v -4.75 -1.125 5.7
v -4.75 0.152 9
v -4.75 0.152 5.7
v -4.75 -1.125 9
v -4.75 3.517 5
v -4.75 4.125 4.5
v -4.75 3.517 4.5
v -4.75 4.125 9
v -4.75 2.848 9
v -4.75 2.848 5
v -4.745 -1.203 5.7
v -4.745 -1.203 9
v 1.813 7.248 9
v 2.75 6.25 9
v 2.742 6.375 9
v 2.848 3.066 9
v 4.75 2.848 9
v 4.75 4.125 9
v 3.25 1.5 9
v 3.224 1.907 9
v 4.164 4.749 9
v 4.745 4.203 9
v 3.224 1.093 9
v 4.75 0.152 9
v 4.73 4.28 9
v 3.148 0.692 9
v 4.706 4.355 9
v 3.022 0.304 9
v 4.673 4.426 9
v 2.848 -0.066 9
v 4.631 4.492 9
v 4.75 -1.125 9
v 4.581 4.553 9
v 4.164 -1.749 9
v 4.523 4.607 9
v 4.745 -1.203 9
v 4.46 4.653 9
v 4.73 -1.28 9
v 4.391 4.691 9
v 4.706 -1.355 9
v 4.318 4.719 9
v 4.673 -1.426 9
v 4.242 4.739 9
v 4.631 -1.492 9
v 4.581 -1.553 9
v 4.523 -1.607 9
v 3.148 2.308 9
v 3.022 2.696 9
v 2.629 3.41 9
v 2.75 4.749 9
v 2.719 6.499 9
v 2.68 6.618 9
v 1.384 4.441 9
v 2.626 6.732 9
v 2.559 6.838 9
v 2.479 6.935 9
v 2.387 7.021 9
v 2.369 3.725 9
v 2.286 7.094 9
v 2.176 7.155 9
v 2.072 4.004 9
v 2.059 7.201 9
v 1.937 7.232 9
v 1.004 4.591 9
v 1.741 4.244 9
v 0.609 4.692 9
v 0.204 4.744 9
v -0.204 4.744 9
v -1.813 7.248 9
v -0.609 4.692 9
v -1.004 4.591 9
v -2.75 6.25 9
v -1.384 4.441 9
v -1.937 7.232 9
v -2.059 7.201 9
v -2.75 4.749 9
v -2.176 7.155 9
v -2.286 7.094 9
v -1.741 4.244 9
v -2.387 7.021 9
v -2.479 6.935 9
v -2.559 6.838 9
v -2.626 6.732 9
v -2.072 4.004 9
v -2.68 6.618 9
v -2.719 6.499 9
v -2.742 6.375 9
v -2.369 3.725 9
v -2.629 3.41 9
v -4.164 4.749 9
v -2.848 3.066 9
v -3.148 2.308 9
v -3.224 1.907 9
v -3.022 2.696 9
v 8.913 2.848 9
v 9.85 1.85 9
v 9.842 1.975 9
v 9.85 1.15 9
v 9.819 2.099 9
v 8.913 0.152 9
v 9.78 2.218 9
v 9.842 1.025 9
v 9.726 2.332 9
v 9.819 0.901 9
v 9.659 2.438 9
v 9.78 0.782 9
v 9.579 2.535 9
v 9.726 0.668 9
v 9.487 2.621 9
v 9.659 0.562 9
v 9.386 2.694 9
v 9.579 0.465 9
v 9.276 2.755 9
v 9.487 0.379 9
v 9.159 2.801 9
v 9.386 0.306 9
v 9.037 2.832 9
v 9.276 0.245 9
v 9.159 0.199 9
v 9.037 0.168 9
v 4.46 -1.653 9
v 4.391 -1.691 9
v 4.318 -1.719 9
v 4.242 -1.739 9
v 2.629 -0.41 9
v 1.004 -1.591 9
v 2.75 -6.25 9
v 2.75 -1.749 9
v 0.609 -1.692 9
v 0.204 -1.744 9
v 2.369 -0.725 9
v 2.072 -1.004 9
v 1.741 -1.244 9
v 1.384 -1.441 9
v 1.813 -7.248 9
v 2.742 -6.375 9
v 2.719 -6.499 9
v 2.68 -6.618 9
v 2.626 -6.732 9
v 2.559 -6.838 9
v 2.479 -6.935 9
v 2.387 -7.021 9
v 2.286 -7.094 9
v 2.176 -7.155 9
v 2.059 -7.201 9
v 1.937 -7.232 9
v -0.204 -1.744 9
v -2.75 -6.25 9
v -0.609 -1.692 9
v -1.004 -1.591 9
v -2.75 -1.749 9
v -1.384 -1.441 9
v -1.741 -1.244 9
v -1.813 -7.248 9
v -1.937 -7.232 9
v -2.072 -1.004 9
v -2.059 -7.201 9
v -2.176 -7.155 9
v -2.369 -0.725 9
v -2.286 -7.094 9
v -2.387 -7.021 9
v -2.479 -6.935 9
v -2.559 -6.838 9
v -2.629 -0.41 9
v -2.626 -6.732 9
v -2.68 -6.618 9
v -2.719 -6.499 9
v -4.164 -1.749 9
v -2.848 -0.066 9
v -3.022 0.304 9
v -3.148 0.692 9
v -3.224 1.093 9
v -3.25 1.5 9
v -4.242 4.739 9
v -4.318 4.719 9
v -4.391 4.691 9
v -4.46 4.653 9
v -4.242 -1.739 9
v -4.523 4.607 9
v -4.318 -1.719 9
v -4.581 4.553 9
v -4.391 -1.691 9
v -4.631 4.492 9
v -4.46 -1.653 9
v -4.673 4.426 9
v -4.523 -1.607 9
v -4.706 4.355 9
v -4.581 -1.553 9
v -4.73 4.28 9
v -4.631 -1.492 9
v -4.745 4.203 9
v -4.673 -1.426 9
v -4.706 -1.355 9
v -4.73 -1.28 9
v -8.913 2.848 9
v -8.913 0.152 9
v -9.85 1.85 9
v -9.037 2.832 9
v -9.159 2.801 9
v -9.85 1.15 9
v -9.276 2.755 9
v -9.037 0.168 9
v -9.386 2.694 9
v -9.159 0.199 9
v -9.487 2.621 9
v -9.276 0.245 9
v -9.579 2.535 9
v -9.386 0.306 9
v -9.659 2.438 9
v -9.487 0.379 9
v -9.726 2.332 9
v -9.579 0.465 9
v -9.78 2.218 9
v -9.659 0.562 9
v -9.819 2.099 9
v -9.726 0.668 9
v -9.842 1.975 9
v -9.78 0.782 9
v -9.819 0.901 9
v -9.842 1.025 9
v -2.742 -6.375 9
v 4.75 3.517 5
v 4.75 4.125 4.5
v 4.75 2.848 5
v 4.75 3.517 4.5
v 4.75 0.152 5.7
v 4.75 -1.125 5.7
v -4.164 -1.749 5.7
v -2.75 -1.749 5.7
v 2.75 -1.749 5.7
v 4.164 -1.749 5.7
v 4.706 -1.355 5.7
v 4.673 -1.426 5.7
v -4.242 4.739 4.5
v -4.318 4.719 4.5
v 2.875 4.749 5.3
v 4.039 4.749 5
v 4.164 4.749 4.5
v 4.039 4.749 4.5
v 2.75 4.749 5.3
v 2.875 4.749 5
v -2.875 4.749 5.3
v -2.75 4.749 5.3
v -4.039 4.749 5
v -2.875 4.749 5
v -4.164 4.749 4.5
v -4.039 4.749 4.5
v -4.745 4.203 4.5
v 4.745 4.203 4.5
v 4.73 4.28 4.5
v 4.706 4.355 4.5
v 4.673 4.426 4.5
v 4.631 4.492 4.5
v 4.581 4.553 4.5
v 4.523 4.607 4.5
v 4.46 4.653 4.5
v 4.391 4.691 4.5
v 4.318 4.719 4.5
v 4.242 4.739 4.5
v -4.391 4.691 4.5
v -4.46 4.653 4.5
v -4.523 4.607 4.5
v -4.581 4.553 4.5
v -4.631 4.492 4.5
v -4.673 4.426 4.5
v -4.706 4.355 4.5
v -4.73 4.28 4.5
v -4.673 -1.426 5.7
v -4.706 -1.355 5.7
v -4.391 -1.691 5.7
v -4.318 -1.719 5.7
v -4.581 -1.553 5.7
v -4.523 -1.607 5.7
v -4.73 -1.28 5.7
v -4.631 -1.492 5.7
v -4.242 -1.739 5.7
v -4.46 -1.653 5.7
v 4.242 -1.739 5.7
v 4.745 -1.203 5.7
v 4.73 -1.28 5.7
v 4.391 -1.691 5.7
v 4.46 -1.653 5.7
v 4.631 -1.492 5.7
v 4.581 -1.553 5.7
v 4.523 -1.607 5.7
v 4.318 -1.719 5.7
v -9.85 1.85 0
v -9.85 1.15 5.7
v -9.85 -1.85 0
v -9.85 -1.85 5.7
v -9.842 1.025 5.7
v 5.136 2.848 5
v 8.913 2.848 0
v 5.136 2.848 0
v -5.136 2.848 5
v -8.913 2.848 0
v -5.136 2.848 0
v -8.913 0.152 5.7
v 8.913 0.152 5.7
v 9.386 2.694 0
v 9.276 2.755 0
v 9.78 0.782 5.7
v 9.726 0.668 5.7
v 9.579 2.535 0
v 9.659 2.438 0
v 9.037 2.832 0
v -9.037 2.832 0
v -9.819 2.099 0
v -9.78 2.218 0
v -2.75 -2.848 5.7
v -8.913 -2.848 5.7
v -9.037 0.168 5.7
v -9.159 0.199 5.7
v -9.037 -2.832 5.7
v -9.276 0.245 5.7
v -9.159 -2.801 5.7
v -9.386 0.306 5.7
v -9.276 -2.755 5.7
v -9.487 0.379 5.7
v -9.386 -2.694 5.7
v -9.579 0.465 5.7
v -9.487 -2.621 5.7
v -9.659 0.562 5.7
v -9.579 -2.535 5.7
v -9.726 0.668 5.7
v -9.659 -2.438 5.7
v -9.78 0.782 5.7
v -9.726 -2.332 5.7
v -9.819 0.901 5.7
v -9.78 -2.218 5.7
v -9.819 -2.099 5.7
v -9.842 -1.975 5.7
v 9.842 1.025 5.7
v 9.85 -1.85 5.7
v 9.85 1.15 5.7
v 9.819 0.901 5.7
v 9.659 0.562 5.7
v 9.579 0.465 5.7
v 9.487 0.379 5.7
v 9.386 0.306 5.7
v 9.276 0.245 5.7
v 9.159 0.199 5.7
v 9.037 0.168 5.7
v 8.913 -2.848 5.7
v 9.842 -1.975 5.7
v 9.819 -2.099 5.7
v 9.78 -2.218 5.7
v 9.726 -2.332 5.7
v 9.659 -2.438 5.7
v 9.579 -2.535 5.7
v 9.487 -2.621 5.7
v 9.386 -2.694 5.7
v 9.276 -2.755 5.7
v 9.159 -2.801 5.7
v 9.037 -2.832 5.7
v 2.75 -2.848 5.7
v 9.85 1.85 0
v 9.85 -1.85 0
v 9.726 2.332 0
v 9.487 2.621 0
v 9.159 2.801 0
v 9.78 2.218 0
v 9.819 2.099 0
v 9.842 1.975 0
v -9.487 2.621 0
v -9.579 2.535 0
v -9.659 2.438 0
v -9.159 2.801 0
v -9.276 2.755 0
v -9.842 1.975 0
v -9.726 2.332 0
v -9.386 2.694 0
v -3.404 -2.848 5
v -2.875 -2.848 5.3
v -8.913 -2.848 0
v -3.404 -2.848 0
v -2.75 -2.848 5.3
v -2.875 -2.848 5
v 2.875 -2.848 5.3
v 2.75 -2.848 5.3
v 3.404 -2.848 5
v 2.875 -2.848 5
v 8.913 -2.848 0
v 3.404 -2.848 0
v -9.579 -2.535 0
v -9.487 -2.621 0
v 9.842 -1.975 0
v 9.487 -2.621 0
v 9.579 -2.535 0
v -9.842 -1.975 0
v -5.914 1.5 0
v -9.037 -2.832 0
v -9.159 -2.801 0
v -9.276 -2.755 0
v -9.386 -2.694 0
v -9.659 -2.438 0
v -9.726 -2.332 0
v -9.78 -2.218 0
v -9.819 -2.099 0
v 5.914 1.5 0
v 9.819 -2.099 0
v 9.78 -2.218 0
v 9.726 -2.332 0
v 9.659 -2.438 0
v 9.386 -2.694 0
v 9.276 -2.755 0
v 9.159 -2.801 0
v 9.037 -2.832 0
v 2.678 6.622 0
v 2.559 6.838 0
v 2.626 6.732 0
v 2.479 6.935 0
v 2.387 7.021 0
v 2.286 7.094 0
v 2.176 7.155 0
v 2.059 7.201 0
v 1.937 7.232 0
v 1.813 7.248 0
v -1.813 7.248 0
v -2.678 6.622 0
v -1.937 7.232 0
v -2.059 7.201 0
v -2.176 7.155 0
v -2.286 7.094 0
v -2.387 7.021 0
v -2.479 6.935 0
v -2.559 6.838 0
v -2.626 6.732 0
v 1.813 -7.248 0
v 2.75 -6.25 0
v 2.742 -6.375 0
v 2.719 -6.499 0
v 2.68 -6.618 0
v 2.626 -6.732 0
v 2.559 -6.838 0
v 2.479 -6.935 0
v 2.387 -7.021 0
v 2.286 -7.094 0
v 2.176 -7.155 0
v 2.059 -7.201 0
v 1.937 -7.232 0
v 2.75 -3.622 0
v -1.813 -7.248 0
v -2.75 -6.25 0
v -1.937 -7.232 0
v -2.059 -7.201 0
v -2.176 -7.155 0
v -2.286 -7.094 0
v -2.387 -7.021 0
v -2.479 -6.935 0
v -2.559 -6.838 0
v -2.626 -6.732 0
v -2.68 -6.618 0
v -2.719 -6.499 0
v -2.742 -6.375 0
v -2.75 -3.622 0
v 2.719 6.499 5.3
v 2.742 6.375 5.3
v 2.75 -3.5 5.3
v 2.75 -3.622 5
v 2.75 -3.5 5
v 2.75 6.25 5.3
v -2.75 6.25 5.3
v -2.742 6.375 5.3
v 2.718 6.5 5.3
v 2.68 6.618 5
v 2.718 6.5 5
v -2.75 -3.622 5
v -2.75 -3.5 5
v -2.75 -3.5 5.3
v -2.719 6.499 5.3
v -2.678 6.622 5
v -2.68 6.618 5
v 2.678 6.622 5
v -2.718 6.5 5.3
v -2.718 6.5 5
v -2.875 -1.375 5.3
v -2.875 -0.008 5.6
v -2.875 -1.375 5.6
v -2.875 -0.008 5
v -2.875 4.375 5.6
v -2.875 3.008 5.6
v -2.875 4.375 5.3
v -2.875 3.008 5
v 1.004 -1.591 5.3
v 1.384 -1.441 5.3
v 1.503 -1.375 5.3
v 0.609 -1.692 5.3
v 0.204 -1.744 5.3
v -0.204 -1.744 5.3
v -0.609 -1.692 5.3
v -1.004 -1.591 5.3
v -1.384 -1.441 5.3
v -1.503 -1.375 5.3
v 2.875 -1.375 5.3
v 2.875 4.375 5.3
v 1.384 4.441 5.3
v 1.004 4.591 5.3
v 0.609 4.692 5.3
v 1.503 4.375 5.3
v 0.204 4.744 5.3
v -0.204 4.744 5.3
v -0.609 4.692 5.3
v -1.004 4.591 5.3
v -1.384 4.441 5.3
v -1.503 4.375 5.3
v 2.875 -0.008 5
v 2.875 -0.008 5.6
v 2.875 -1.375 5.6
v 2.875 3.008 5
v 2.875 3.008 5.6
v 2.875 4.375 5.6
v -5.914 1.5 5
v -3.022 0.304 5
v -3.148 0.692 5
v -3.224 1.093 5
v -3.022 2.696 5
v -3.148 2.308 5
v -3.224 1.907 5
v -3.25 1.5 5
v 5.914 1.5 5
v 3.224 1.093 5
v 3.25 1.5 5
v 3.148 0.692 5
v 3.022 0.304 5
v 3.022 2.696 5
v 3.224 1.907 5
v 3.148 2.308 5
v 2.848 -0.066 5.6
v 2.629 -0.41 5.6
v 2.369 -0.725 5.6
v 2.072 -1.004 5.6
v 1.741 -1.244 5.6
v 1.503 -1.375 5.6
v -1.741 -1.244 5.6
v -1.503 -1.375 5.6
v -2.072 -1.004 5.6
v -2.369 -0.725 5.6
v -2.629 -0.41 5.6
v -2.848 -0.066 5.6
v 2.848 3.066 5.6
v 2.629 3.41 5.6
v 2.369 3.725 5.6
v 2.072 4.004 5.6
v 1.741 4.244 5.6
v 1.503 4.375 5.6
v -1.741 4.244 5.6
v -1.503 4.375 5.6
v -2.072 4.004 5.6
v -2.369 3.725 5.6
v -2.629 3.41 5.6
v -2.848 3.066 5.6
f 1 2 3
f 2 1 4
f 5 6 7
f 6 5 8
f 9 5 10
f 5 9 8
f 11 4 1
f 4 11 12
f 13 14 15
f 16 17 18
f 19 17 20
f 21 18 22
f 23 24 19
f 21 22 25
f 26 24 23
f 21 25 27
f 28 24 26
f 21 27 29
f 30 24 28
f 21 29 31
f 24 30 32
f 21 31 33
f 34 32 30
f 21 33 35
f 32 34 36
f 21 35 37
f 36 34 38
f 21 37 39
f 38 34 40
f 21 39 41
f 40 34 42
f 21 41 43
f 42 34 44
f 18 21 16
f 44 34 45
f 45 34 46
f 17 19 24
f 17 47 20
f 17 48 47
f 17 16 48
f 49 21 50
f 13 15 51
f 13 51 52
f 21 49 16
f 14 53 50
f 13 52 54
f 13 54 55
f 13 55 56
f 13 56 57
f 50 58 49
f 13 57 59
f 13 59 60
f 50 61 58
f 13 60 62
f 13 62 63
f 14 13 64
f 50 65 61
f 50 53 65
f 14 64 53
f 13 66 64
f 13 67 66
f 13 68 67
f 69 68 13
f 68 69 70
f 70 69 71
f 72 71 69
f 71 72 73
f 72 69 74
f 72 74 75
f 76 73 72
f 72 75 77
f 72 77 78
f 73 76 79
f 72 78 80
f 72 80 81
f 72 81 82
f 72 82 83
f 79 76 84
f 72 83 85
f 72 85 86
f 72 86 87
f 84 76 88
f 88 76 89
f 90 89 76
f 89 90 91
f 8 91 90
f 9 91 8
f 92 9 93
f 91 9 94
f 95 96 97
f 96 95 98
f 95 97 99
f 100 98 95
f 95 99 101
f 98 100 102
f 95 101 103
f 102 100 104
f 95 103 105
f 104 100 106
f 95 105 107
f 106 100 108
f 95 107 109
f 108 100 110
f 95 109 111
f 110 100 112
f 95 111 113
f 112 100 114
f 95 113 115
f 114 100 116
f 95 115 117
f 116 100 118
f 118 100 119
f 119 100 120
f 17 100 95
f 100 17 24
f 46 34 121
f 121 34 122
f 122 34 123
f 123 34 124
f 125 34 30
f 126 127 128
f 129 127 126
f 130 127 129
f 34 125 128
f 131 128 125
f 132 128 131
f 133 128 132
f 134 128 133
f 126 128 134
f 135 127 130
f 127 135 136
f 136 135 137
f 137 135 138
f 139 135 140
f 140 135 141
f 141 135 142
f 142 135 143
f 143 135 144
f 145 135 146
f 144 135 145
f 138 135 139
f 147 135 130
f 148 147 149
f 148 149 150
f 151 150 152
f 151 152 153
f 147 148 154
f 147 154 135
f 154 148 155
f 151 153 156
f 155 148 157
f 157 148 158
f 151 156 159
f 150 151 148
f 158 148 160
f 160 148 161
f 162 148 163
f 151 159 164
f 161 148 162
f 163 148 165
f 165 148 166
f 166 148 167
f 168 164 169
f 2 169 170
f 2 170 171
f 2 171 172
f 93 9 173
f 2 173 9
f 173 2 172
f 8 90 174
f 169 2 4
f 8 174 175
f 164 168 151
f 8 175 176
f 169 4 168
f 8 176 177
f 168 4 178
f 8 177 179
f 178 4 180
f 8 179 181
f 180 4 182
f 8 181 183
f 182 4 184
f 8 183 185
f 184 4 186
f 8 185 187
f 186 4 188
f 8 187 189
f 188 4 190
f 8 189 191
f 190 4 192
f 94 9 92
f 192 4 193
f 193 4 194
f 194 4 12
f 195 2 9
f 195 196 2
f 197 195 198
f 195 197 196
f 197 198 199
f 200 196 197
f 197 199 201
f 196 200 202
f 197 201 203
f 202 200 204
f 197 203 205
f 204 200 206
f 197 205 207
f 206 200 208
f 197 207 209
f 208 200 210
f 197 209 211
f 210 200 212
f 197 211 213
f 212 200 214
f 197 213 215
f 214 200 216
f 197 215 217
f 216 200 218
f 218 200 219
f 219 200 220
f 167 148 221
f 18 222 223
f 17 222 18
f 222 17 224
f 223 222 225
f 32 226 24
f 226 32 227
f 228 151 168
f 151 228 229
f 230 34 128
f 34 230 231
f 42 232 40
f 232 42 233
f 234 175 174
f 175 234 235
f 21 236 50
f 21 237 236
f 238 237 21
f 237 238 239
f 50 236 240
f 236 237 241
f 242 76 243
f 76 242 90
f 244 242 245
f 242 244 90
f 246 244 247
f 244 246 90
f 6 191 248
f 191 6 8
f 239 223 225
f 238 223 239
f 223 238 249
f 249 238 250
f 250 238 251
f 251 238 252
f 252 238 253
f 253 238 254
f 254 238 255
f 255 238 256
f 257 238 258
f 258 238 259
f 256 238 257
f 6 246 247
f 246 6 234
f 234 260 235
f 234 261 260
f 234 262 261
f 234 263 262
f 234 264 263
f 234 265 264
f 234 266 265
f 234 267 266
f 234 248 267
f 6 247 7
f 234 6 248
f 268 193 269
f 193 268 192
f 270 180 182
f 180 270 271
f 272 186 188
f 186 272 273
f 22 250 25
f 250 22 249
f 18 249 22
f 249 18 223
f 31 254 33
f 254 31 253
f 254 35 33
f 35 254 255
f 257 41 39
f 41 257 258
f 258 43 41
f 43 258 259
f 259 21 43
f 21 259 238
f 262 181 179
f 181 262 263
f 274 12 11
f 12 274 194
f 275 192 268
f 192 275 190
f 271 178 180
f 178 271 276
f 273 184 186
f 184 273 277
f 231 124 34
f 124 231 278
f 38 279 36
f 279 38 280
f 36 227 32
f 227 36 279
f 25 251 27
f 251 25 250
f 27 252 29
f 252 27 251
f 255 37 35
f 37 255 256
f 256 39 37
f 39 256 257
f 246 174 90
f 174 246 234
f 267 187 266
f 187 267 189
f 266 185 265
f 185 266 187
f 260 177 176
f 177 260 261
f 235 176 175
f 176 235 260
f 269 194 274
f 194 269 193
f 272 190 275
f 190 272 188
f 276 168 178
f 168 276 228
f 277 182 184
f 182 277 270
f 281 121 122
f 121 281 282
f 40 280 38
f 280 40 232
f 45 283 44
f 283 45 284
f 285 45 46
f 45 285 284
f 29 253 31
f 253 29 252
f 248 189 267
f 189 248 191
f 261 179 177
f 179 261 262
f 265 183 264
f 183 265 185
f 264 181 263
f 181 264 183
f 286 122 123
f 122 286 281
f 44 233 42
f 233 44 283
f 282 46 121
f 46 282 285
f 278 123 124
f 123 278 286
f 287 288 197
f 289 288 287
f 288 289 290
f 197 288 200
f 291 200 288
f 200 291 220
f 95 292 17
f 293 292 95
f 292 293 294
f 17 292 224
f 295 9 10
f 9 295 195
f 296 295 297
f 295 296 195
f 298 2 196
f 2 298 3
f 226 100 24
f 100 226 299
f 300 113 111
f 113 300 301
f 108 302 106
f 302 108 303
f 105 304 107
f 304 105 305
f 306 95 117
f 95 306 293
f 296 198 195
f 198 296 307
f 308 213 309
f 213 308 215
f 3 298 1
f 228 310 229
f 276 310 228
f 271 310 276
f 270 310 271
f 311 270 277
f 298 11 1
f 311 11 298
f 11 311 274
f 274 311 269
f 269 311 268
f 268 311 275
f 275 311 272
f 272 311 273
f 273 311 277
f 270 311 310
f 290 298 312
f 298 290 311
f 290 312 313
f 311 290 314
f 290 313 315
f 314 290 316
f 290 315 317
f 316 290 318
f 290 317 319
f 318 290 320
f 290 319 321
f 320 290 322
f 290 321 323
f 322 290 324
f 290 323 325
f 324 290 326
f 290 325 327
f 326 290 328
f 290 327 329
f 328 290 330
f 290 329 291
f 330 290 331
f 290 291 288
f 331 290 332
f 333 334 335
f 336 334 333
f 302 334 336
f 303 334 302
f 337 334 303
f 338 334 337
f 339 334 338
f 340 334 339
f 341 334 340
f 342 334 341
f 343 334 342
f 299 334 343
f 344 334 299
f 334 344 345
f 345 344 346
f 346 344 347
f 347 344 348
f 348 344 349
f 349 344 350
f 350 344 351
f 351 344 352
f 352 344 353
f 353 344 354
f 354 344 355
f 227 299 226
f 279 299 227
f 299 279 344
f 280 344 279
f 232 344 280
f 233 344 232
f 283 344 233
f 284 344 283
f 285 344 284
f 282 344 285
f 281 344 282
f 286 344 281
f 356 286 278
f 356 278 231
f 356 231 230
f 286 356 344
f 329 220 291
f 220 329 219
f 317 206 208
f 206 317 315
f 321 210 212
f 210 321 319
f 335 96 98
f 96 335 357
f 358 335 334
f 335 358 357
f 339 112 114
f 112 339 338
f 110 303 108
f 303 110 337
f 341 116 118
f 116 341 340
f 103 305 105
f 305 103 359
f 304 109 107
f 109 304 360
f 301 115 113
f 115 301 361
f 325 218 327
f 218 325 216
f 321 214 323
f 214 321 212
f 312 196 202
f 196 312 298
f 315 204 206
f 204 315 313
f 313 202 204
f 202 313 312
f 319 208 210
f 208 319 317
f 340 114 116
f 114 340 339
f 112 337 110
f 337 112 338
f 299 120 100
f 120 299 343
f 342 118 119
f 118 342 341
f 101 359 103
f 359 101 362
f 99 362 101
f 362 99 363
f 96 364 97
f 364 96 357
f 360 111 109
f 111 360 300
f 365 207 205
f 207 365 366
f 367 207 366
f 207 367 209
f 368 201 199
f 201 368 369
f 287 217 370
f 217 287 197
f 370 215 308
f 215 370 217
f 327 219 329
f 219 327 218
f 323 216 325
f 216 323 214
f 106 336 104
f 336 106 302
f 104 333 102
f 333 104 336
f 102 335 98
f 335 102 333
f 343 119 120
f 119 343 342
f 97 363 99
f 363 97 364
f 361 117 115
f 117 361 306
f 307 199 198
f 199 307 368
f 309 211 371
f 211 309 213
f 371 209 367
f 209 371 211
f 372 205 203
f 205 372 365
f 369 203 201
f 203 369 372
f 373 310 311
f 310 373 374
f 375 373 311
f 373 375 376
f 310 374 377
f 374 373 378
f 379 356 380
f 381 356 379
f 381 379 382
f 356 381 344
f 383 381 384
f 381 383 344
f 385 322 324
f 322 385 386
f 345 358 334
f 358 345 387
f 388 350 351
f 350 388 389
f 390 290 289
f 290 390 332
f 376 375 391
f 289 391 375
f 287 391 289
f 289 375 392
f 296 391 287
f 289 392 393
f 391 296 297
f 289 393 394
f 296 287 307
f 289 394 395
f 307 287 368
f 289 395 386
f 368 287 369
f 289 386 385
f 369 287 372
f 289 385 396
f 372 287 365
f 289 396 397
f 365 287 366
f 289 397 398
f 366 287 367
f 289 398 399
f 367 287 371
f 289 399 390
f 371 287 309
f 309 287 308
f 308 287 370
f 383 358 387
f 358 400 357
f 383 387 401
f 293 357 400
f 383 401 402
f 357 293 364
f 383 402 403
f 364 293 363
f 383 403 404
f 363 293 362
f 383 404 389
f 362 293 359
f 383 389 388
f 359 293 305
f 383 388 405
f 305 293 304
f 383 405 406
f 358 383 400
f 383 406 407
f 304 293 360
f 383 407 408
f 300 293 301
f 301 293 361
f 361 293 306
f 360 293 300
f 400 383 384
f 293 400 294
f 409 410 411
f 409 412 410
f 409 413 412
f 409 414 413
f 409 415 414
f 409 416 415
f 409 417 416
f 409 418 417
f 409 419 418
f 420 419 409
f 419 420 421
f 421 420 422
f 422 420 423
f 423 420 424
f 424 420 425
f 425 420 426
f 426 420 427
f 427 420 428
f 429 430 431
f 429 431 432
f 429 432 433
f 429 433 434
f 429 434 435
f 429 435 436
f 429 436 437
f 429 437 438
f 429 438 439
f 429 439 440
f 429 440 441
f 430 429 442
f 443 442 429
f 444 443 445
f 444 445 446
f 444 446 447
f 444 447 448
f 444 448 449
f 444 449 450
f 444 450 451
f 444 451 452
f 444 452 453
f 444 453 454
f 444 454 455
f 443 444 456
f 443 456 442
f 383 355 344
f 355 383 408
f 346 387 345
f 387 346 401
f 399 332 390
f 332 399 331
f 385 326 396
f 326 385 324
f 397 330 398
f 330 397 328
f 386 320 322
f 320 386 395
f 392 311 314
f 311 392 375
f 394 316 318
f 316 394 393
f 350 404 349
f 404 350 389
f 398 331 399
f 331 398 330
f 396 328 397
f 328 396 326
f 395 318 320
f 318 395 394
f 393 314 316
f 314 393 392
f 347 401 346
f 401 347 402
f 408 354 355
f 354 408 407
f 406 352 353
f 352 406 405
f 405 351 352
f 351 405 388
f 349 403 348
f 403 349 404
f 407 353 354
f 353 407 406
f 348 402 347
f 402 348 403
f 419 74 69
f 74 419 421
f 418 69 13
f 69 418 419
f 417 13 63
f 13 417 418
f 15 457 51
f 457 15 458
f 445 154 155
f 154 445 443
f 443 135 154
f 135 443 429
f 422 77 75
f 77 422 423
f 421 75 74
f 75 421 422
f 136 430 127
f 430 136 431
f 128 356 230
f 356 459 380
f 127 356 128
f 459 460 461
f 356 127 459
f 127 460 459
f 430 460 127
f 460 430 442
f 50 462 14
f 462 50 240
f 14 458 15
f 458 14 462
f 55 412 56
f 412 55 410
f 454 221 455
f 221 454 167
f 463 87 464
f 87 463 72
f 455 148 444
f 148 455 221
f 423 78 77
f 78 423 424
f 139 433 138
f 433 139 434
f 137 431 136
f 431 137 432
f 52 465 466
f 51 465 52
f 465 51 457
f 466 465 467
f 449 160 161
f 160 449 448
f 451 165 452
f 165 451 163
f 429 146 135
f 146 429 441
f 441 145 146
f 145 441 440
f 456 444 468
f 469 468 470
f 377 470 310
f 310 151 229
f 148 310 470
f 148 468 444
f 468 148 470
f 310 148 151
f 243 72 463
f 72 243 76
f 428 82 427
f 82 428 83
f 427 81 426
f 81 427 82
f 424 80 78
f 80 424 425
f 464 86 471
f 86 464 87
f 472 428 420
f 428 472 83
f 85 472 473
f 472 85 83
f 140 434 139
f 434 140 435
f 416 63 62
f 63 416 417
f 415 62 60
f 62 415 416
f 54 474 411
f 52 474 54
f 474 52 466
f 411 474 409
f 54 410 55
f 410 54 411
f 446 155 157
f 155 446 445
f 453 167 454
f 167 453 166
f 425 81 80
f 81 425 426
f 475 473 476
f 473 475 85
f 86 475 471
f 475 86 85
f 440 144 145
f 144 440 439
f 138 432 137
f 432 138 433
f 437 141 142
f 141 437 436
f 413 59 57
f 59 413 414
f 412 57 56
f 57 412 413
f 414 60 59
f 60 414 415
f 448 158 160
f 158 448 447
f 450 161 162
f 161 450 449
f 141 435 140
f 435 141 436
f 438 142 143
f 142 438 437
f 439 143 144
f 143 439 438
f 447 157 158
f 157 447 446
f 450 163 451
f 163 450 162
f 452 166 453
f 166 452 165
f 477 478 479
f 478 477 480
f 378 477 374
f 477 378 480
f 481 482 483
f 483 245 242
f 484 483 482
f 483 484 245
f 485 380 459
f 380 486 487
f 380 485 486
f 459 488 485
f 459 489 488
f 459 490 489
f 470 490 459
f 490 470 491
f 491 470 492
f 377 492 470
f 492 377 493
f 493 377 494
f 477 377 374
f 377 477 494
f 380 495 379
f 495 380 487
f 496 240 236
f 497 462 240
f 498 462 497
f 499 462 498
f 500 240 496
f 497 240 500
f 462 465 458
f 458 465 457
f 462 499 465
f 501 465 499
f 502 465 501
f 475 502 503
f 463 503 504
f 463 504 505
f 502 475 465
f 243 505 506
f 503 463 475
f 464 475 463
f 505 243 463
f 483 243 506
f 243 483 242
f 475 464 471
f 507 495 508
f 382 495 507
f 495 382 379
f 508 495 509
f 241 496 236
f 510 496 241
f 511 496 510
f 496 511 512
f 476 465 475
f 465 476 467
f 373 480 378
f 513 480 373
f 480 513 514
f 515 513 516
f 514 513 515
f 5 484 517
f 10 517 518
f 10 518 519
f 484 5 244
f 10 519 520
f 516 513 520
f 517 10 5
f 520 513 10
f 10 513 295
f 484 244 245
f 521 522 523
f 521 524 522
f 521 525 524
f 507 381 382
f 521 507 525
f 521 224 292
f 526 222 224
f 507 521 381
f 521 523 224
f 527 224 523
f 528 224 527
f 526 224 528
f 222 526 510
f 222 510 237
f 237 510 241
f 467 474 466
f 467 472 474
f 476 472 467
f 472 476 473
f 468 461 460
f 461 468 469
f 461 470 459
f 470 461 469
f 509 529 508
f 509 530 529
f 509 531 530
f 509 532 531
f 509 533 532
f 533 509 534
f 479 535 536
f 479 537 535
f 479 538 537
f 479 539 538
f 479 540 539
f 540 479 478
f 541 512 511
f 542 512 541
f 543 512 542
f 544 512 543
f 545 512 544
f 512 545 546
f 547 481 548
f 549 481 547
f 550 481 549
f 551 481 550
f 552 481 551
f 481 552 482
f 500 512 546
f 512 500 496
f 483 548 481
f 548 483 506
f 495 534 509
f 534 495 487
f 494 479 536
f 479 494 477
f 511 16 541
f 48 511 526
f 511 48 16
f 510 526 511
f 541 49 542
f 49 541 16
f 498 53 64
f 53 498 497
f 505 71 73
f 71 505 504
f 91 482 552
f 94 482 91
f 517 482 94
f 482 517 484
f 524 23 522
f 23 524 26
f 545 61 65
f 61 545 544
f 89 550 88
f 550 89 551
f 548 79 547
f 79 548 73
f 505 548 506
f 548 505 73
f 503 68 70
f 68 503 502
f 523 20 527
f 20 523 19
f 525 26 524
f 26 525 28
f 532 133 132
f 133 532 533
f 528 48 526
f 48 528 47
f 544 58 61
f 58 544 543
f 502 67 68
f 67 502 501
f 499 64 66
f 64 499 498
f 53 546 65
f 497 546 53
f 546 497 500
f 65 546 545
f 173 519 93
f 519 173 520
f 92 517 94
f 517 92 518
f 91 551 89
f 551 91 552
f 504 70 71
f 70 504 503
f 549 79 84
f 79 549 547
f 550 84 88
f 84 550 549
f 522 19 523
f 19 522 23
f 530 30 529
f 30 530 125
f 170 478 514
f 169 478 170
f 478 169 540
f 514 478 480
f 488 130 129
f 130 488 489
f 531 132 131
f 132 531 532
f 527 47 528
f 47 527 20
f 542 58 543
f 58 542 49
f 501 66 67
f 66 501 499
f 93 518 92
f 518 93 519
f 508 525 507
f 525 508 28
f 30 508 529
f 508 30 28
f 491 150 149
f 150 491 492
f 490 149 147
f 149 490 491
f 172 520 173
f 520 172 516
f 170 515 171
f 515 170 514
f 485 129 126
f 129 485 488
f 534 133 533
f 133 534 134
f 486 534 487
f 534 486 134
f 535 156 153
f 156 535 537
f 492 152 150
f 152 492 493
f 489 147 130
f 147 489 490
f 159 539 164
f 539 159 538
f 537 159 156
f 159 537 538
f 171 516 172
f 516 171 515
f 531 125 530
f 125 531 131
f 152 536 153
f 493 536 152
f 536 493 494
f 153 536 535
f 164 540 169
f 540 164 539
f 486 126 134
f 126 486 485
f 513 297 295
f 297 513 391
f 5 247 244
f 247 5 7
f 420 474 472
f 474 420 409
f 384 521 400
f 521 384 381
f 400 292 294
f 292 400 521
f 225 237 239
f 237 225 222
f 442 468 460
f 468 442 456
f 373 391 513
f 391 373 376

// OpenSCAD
$fn = 50;


difference() {
	union() {
		translate(v = [0, 1.5000000000, 4.5000000000]) {
			hull() {
				translate(v = [-4.1250000000, 2.6250000000, 0]) {
					cylinder(h = 4.5000000000, r = 0.6250000000);
				}
				translate(v = [4.1250000000, 2.6250000000, 0]) {
					cylinder(h = 4.5000000000, r = 0.6250000000);
				}
				translate(v = [-4.1250000000, -2.6250000000, 0]) {
					cylinder(h = 4.5000000000, r = 0.6250000000);
				}
				translate(v = [4.1250000000, -2.6250000000, 0]) {
					cylinder(h = 4.5000000000, r = 0.6250000000);
				}
			}
		}
		translate(v = [0, 1.5000000000, 5.7000000000]) {
			hull() {
				translate(v = [-8.8500000000, 0.3500000000, 0]) {
					cylinder(h = 3.3000000000, r = 1);
				}
				translate(v = [8.8500000000, 0.3500000000, 0]) {
					cylinder(h = 3.3000000000, r = 1);
				}
				translate(v = [-8.8500000000, -0.3500000000, 0]) {
					cylinder(h = 3.3000000000, r = 1);
				}
				translate(v = [8.8500000000, -0.3500000000, 0]) {
					cylinder(h = 3.3000000000, r = 1);
				}
			}
		}
		hull() {
			translate(v = [-8.8500000000, 1.8500000000, 0]) {
				cylinder(h = 5.7000000000, r = 1);
			}
			translate(v = [8.8500000000, 1.8500000000, 0]) {
				cylinder(h = 5.7000000000, r = 1);
			}
			translate(v = [-8.8500000000, -1.8500000000, 0]) {
				cylinder(h = 5.7000000000, r = 1);
			}
			translate(v = [8.8500000000, -1.8500000000, 0]) {
				cylinder(h = 5.7000000000, r = 1);
			}
		}
		translate(v = [0, 0, 6]) {
			hull() {
				translate(v = [-1.7500000000, 6.2500000000, 0]) {
					cylinder(h = 3, r = 1);
				}
				translate(v = [1.7500000000, 6.2500000000, 0]) {
					cylinder(h = 3, r = 1);
				}
				translate(v = [-1.7500000000, -6.2500000000, 0]) {
					cylinder(h = 3, r = 1);
				}
				translate(v = [1.7500000000, -6.2500000000, 0]) {
					cylinder(h = 3, r = 1);
				}
			}
		}
		hull() {
			translate(v = [-1.7500000000, 6.2500000000, 0]) {
				cylinder(h = 6, r = 1);
			}
			translate(v = [1.7500000000, 6.2500000000, 0]) {
				cylinder(h = 6, r = 1);
			}
			translate(v = [-1.7500000000, -6.2500000000, 0]) {
				cylinder(h = 6, r = 1);
			}
			translate(v = [1.7500000000, -6.2500000000, 0]) {
				cylinder(h = 6, r = 1);
			}
		}
	}
	union() {
		translate(v = [0, 1.5000000000, 0]) {
			rotate(a = [0, 0, 0]) {
				difference() {
					union() {
						#translate(v = [-2.8750000000, -5.0000000000, -0.3000000000]) {
							cube(size = [5.7500000000, 10, 0.3000000000]);
						}
						#translate(v = [-2.8750000000, -2.8750000000, -0.6000000000]) {
							cube(size = [5.7500000000, 5.7500000000, 0.3000000000]);
						}
						#translate(v = [-2.8750000000, -5.0000000000, 5]) {
							cube(size = [5.7500000000, 10, 0.3000000000]);
						}
						#translate(v = [-2.8750000000, -2.8750000000, 5.3000000000]) {
							cube(size = [5.7500000000, 5.7500000000, 0.3000000000]);
						}
						#translate(v = [0, 0, -100.0000000000]) {
							cylinder(h = 200, r = 3.2500000000);
						}
						#linear_extrude(height = 5) {
							polygon(points = [[5.9142500000, 0.0000000000], [2.9571250000, 5.1218907443], [-2.9571250000, 5.1218907443], [-5.9142500000, 0.0000000000], [-2.9571250000, -5.1218907443], [2.9571250000, -5.1218907443]]);
						}
						#translate(v = [-2.8750000000, -5.0000000000, -0.3000000000]) {
							cube(size = [5.7500000000, 10, 0.3000000000]);
						}
						#translate(v = [-2.8750000000, -2.8750000000, -0.6000000000]) {
							cube(size = [5.7500000000, 5.7500000000, 0.3000000000]);
						}
						#translate(v = [-2.8750000000, -5.0000000000, 5]) {
							cube(size = [5.7500000000, 10, 0.3000000000]);
						}
						#translate(v = [-2.8750000000, -2.8750000000, 5.3000000000]) {
							cube(size = [5.7500000000, 5.7500000000, 0.3000000000]);
						}
						#translate(v = [0, 0, -100.0000000000]) {
							cylinder(h = 200, r = 3.2500000000);
						}
						#translate(v = [-2.8750000000, -5.0000000000, -0.3000000000]) {
							cube(size = [5.7500000000, 10, 0.3000000000]);
						}
						#translate(v = [-2.8750000000, -2.8750000000, -0.6000000000]) {
							cube(size = [5.7500000000, 5.7500000000, 0.3000000000]);
						}
						#translate(v = [-2.8750000000, -5.0000000000, 5]) {
							cube(size = [5.7500000000, 10, 0.3000000000]);
						}
						#translate(v = [-2.8750000000, -2.8750000000, 5.3000000000]) {
							cube(size = [5.7500000000, 5.7500000000, 0.3000000000]);
						}
						#translate(v = [0, 0, -100.0000000000]) {
							cylinder(h = 200, r = 3.2500000000);
						}
					}
					union();
				}
			}
		}
	}
}
